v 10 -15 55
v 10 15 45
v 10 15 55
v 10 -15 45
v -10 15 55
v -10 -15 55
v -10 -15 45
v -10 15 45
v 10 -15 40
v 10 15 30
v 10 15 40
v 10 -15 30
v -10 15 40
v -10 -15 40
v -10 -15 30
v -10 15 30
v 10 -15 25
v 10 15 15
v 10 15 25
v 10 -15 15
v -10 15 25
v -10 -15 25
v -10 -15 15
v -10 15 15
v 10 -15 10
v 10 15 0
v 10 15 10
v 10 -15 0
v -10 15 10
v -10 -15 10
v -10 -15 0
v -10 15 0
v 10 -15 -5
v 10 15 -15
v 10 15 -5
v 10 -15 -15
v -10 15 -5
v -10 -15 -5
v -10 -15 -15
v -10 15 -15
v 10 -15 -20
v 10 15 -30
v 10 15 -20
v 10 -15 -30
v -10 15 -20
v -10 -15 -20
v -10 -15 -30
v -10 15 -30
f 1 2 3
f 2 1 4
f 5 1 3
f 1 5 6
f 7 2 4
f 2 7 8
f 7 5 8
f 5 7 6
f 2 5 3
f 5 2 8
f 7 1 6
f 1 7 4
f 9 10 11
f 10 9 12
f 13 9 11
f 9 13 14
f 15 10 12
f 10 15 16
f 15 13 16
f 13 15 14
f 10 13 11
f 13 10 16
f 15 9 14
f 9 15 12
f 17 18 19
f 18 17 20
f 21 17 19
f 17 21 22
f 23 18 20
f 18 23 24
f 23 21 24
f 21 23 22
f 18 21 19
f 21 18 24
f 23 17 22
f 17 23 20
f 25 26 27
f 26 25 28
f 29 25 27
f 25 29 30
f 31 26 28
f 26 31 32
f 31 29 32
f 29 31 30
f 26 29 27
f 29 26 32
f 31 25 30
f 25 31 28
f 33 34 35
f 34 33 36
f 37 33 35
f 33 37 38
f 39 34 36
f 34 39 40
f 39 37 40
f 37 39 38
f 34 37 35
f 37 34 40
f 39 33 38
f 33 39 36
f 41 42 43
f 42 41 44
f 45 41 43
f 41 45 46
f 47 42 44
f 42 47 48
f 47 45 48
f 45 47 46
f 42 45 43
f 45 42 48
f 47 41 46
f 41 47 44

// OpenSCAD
// Define dimensions for the rectangular block
block_width = 20;  // Width of the block
block_height = 10; // Height of the block
block_depth = 30;  // Depth of the block

// Define spacing between layers
layer_spacing = 5;

// Function to create a rectangular block
module rectangular_block() {
    cube([block_width, block_depth, block_height], center = true);
}

// Generate the stacked layers
translate([0, 0, layer_spacing * 5 + block_height * 2.5]) rectangular_block(); // Layer 1
translate([0, 0, layer_spacing * 4 + block_height * 1.5]) rectangular_block(); // Layer 2
translate([0, 0, layer_spacing * 3 + block_height * 0.5]) rectangular_block(); // Layer 3
translate([0, 0, layer_spacing * 2 - block_height * 0.5]) rectangular_block(); // Layer 4
translate([0, 0, layer_spacing * 1 - block_height * 1.5]) rectangular_block(); // Layer 5
translate([0, 0, -block_height * 2.5]) rectangular_block();                    // Layer 6
